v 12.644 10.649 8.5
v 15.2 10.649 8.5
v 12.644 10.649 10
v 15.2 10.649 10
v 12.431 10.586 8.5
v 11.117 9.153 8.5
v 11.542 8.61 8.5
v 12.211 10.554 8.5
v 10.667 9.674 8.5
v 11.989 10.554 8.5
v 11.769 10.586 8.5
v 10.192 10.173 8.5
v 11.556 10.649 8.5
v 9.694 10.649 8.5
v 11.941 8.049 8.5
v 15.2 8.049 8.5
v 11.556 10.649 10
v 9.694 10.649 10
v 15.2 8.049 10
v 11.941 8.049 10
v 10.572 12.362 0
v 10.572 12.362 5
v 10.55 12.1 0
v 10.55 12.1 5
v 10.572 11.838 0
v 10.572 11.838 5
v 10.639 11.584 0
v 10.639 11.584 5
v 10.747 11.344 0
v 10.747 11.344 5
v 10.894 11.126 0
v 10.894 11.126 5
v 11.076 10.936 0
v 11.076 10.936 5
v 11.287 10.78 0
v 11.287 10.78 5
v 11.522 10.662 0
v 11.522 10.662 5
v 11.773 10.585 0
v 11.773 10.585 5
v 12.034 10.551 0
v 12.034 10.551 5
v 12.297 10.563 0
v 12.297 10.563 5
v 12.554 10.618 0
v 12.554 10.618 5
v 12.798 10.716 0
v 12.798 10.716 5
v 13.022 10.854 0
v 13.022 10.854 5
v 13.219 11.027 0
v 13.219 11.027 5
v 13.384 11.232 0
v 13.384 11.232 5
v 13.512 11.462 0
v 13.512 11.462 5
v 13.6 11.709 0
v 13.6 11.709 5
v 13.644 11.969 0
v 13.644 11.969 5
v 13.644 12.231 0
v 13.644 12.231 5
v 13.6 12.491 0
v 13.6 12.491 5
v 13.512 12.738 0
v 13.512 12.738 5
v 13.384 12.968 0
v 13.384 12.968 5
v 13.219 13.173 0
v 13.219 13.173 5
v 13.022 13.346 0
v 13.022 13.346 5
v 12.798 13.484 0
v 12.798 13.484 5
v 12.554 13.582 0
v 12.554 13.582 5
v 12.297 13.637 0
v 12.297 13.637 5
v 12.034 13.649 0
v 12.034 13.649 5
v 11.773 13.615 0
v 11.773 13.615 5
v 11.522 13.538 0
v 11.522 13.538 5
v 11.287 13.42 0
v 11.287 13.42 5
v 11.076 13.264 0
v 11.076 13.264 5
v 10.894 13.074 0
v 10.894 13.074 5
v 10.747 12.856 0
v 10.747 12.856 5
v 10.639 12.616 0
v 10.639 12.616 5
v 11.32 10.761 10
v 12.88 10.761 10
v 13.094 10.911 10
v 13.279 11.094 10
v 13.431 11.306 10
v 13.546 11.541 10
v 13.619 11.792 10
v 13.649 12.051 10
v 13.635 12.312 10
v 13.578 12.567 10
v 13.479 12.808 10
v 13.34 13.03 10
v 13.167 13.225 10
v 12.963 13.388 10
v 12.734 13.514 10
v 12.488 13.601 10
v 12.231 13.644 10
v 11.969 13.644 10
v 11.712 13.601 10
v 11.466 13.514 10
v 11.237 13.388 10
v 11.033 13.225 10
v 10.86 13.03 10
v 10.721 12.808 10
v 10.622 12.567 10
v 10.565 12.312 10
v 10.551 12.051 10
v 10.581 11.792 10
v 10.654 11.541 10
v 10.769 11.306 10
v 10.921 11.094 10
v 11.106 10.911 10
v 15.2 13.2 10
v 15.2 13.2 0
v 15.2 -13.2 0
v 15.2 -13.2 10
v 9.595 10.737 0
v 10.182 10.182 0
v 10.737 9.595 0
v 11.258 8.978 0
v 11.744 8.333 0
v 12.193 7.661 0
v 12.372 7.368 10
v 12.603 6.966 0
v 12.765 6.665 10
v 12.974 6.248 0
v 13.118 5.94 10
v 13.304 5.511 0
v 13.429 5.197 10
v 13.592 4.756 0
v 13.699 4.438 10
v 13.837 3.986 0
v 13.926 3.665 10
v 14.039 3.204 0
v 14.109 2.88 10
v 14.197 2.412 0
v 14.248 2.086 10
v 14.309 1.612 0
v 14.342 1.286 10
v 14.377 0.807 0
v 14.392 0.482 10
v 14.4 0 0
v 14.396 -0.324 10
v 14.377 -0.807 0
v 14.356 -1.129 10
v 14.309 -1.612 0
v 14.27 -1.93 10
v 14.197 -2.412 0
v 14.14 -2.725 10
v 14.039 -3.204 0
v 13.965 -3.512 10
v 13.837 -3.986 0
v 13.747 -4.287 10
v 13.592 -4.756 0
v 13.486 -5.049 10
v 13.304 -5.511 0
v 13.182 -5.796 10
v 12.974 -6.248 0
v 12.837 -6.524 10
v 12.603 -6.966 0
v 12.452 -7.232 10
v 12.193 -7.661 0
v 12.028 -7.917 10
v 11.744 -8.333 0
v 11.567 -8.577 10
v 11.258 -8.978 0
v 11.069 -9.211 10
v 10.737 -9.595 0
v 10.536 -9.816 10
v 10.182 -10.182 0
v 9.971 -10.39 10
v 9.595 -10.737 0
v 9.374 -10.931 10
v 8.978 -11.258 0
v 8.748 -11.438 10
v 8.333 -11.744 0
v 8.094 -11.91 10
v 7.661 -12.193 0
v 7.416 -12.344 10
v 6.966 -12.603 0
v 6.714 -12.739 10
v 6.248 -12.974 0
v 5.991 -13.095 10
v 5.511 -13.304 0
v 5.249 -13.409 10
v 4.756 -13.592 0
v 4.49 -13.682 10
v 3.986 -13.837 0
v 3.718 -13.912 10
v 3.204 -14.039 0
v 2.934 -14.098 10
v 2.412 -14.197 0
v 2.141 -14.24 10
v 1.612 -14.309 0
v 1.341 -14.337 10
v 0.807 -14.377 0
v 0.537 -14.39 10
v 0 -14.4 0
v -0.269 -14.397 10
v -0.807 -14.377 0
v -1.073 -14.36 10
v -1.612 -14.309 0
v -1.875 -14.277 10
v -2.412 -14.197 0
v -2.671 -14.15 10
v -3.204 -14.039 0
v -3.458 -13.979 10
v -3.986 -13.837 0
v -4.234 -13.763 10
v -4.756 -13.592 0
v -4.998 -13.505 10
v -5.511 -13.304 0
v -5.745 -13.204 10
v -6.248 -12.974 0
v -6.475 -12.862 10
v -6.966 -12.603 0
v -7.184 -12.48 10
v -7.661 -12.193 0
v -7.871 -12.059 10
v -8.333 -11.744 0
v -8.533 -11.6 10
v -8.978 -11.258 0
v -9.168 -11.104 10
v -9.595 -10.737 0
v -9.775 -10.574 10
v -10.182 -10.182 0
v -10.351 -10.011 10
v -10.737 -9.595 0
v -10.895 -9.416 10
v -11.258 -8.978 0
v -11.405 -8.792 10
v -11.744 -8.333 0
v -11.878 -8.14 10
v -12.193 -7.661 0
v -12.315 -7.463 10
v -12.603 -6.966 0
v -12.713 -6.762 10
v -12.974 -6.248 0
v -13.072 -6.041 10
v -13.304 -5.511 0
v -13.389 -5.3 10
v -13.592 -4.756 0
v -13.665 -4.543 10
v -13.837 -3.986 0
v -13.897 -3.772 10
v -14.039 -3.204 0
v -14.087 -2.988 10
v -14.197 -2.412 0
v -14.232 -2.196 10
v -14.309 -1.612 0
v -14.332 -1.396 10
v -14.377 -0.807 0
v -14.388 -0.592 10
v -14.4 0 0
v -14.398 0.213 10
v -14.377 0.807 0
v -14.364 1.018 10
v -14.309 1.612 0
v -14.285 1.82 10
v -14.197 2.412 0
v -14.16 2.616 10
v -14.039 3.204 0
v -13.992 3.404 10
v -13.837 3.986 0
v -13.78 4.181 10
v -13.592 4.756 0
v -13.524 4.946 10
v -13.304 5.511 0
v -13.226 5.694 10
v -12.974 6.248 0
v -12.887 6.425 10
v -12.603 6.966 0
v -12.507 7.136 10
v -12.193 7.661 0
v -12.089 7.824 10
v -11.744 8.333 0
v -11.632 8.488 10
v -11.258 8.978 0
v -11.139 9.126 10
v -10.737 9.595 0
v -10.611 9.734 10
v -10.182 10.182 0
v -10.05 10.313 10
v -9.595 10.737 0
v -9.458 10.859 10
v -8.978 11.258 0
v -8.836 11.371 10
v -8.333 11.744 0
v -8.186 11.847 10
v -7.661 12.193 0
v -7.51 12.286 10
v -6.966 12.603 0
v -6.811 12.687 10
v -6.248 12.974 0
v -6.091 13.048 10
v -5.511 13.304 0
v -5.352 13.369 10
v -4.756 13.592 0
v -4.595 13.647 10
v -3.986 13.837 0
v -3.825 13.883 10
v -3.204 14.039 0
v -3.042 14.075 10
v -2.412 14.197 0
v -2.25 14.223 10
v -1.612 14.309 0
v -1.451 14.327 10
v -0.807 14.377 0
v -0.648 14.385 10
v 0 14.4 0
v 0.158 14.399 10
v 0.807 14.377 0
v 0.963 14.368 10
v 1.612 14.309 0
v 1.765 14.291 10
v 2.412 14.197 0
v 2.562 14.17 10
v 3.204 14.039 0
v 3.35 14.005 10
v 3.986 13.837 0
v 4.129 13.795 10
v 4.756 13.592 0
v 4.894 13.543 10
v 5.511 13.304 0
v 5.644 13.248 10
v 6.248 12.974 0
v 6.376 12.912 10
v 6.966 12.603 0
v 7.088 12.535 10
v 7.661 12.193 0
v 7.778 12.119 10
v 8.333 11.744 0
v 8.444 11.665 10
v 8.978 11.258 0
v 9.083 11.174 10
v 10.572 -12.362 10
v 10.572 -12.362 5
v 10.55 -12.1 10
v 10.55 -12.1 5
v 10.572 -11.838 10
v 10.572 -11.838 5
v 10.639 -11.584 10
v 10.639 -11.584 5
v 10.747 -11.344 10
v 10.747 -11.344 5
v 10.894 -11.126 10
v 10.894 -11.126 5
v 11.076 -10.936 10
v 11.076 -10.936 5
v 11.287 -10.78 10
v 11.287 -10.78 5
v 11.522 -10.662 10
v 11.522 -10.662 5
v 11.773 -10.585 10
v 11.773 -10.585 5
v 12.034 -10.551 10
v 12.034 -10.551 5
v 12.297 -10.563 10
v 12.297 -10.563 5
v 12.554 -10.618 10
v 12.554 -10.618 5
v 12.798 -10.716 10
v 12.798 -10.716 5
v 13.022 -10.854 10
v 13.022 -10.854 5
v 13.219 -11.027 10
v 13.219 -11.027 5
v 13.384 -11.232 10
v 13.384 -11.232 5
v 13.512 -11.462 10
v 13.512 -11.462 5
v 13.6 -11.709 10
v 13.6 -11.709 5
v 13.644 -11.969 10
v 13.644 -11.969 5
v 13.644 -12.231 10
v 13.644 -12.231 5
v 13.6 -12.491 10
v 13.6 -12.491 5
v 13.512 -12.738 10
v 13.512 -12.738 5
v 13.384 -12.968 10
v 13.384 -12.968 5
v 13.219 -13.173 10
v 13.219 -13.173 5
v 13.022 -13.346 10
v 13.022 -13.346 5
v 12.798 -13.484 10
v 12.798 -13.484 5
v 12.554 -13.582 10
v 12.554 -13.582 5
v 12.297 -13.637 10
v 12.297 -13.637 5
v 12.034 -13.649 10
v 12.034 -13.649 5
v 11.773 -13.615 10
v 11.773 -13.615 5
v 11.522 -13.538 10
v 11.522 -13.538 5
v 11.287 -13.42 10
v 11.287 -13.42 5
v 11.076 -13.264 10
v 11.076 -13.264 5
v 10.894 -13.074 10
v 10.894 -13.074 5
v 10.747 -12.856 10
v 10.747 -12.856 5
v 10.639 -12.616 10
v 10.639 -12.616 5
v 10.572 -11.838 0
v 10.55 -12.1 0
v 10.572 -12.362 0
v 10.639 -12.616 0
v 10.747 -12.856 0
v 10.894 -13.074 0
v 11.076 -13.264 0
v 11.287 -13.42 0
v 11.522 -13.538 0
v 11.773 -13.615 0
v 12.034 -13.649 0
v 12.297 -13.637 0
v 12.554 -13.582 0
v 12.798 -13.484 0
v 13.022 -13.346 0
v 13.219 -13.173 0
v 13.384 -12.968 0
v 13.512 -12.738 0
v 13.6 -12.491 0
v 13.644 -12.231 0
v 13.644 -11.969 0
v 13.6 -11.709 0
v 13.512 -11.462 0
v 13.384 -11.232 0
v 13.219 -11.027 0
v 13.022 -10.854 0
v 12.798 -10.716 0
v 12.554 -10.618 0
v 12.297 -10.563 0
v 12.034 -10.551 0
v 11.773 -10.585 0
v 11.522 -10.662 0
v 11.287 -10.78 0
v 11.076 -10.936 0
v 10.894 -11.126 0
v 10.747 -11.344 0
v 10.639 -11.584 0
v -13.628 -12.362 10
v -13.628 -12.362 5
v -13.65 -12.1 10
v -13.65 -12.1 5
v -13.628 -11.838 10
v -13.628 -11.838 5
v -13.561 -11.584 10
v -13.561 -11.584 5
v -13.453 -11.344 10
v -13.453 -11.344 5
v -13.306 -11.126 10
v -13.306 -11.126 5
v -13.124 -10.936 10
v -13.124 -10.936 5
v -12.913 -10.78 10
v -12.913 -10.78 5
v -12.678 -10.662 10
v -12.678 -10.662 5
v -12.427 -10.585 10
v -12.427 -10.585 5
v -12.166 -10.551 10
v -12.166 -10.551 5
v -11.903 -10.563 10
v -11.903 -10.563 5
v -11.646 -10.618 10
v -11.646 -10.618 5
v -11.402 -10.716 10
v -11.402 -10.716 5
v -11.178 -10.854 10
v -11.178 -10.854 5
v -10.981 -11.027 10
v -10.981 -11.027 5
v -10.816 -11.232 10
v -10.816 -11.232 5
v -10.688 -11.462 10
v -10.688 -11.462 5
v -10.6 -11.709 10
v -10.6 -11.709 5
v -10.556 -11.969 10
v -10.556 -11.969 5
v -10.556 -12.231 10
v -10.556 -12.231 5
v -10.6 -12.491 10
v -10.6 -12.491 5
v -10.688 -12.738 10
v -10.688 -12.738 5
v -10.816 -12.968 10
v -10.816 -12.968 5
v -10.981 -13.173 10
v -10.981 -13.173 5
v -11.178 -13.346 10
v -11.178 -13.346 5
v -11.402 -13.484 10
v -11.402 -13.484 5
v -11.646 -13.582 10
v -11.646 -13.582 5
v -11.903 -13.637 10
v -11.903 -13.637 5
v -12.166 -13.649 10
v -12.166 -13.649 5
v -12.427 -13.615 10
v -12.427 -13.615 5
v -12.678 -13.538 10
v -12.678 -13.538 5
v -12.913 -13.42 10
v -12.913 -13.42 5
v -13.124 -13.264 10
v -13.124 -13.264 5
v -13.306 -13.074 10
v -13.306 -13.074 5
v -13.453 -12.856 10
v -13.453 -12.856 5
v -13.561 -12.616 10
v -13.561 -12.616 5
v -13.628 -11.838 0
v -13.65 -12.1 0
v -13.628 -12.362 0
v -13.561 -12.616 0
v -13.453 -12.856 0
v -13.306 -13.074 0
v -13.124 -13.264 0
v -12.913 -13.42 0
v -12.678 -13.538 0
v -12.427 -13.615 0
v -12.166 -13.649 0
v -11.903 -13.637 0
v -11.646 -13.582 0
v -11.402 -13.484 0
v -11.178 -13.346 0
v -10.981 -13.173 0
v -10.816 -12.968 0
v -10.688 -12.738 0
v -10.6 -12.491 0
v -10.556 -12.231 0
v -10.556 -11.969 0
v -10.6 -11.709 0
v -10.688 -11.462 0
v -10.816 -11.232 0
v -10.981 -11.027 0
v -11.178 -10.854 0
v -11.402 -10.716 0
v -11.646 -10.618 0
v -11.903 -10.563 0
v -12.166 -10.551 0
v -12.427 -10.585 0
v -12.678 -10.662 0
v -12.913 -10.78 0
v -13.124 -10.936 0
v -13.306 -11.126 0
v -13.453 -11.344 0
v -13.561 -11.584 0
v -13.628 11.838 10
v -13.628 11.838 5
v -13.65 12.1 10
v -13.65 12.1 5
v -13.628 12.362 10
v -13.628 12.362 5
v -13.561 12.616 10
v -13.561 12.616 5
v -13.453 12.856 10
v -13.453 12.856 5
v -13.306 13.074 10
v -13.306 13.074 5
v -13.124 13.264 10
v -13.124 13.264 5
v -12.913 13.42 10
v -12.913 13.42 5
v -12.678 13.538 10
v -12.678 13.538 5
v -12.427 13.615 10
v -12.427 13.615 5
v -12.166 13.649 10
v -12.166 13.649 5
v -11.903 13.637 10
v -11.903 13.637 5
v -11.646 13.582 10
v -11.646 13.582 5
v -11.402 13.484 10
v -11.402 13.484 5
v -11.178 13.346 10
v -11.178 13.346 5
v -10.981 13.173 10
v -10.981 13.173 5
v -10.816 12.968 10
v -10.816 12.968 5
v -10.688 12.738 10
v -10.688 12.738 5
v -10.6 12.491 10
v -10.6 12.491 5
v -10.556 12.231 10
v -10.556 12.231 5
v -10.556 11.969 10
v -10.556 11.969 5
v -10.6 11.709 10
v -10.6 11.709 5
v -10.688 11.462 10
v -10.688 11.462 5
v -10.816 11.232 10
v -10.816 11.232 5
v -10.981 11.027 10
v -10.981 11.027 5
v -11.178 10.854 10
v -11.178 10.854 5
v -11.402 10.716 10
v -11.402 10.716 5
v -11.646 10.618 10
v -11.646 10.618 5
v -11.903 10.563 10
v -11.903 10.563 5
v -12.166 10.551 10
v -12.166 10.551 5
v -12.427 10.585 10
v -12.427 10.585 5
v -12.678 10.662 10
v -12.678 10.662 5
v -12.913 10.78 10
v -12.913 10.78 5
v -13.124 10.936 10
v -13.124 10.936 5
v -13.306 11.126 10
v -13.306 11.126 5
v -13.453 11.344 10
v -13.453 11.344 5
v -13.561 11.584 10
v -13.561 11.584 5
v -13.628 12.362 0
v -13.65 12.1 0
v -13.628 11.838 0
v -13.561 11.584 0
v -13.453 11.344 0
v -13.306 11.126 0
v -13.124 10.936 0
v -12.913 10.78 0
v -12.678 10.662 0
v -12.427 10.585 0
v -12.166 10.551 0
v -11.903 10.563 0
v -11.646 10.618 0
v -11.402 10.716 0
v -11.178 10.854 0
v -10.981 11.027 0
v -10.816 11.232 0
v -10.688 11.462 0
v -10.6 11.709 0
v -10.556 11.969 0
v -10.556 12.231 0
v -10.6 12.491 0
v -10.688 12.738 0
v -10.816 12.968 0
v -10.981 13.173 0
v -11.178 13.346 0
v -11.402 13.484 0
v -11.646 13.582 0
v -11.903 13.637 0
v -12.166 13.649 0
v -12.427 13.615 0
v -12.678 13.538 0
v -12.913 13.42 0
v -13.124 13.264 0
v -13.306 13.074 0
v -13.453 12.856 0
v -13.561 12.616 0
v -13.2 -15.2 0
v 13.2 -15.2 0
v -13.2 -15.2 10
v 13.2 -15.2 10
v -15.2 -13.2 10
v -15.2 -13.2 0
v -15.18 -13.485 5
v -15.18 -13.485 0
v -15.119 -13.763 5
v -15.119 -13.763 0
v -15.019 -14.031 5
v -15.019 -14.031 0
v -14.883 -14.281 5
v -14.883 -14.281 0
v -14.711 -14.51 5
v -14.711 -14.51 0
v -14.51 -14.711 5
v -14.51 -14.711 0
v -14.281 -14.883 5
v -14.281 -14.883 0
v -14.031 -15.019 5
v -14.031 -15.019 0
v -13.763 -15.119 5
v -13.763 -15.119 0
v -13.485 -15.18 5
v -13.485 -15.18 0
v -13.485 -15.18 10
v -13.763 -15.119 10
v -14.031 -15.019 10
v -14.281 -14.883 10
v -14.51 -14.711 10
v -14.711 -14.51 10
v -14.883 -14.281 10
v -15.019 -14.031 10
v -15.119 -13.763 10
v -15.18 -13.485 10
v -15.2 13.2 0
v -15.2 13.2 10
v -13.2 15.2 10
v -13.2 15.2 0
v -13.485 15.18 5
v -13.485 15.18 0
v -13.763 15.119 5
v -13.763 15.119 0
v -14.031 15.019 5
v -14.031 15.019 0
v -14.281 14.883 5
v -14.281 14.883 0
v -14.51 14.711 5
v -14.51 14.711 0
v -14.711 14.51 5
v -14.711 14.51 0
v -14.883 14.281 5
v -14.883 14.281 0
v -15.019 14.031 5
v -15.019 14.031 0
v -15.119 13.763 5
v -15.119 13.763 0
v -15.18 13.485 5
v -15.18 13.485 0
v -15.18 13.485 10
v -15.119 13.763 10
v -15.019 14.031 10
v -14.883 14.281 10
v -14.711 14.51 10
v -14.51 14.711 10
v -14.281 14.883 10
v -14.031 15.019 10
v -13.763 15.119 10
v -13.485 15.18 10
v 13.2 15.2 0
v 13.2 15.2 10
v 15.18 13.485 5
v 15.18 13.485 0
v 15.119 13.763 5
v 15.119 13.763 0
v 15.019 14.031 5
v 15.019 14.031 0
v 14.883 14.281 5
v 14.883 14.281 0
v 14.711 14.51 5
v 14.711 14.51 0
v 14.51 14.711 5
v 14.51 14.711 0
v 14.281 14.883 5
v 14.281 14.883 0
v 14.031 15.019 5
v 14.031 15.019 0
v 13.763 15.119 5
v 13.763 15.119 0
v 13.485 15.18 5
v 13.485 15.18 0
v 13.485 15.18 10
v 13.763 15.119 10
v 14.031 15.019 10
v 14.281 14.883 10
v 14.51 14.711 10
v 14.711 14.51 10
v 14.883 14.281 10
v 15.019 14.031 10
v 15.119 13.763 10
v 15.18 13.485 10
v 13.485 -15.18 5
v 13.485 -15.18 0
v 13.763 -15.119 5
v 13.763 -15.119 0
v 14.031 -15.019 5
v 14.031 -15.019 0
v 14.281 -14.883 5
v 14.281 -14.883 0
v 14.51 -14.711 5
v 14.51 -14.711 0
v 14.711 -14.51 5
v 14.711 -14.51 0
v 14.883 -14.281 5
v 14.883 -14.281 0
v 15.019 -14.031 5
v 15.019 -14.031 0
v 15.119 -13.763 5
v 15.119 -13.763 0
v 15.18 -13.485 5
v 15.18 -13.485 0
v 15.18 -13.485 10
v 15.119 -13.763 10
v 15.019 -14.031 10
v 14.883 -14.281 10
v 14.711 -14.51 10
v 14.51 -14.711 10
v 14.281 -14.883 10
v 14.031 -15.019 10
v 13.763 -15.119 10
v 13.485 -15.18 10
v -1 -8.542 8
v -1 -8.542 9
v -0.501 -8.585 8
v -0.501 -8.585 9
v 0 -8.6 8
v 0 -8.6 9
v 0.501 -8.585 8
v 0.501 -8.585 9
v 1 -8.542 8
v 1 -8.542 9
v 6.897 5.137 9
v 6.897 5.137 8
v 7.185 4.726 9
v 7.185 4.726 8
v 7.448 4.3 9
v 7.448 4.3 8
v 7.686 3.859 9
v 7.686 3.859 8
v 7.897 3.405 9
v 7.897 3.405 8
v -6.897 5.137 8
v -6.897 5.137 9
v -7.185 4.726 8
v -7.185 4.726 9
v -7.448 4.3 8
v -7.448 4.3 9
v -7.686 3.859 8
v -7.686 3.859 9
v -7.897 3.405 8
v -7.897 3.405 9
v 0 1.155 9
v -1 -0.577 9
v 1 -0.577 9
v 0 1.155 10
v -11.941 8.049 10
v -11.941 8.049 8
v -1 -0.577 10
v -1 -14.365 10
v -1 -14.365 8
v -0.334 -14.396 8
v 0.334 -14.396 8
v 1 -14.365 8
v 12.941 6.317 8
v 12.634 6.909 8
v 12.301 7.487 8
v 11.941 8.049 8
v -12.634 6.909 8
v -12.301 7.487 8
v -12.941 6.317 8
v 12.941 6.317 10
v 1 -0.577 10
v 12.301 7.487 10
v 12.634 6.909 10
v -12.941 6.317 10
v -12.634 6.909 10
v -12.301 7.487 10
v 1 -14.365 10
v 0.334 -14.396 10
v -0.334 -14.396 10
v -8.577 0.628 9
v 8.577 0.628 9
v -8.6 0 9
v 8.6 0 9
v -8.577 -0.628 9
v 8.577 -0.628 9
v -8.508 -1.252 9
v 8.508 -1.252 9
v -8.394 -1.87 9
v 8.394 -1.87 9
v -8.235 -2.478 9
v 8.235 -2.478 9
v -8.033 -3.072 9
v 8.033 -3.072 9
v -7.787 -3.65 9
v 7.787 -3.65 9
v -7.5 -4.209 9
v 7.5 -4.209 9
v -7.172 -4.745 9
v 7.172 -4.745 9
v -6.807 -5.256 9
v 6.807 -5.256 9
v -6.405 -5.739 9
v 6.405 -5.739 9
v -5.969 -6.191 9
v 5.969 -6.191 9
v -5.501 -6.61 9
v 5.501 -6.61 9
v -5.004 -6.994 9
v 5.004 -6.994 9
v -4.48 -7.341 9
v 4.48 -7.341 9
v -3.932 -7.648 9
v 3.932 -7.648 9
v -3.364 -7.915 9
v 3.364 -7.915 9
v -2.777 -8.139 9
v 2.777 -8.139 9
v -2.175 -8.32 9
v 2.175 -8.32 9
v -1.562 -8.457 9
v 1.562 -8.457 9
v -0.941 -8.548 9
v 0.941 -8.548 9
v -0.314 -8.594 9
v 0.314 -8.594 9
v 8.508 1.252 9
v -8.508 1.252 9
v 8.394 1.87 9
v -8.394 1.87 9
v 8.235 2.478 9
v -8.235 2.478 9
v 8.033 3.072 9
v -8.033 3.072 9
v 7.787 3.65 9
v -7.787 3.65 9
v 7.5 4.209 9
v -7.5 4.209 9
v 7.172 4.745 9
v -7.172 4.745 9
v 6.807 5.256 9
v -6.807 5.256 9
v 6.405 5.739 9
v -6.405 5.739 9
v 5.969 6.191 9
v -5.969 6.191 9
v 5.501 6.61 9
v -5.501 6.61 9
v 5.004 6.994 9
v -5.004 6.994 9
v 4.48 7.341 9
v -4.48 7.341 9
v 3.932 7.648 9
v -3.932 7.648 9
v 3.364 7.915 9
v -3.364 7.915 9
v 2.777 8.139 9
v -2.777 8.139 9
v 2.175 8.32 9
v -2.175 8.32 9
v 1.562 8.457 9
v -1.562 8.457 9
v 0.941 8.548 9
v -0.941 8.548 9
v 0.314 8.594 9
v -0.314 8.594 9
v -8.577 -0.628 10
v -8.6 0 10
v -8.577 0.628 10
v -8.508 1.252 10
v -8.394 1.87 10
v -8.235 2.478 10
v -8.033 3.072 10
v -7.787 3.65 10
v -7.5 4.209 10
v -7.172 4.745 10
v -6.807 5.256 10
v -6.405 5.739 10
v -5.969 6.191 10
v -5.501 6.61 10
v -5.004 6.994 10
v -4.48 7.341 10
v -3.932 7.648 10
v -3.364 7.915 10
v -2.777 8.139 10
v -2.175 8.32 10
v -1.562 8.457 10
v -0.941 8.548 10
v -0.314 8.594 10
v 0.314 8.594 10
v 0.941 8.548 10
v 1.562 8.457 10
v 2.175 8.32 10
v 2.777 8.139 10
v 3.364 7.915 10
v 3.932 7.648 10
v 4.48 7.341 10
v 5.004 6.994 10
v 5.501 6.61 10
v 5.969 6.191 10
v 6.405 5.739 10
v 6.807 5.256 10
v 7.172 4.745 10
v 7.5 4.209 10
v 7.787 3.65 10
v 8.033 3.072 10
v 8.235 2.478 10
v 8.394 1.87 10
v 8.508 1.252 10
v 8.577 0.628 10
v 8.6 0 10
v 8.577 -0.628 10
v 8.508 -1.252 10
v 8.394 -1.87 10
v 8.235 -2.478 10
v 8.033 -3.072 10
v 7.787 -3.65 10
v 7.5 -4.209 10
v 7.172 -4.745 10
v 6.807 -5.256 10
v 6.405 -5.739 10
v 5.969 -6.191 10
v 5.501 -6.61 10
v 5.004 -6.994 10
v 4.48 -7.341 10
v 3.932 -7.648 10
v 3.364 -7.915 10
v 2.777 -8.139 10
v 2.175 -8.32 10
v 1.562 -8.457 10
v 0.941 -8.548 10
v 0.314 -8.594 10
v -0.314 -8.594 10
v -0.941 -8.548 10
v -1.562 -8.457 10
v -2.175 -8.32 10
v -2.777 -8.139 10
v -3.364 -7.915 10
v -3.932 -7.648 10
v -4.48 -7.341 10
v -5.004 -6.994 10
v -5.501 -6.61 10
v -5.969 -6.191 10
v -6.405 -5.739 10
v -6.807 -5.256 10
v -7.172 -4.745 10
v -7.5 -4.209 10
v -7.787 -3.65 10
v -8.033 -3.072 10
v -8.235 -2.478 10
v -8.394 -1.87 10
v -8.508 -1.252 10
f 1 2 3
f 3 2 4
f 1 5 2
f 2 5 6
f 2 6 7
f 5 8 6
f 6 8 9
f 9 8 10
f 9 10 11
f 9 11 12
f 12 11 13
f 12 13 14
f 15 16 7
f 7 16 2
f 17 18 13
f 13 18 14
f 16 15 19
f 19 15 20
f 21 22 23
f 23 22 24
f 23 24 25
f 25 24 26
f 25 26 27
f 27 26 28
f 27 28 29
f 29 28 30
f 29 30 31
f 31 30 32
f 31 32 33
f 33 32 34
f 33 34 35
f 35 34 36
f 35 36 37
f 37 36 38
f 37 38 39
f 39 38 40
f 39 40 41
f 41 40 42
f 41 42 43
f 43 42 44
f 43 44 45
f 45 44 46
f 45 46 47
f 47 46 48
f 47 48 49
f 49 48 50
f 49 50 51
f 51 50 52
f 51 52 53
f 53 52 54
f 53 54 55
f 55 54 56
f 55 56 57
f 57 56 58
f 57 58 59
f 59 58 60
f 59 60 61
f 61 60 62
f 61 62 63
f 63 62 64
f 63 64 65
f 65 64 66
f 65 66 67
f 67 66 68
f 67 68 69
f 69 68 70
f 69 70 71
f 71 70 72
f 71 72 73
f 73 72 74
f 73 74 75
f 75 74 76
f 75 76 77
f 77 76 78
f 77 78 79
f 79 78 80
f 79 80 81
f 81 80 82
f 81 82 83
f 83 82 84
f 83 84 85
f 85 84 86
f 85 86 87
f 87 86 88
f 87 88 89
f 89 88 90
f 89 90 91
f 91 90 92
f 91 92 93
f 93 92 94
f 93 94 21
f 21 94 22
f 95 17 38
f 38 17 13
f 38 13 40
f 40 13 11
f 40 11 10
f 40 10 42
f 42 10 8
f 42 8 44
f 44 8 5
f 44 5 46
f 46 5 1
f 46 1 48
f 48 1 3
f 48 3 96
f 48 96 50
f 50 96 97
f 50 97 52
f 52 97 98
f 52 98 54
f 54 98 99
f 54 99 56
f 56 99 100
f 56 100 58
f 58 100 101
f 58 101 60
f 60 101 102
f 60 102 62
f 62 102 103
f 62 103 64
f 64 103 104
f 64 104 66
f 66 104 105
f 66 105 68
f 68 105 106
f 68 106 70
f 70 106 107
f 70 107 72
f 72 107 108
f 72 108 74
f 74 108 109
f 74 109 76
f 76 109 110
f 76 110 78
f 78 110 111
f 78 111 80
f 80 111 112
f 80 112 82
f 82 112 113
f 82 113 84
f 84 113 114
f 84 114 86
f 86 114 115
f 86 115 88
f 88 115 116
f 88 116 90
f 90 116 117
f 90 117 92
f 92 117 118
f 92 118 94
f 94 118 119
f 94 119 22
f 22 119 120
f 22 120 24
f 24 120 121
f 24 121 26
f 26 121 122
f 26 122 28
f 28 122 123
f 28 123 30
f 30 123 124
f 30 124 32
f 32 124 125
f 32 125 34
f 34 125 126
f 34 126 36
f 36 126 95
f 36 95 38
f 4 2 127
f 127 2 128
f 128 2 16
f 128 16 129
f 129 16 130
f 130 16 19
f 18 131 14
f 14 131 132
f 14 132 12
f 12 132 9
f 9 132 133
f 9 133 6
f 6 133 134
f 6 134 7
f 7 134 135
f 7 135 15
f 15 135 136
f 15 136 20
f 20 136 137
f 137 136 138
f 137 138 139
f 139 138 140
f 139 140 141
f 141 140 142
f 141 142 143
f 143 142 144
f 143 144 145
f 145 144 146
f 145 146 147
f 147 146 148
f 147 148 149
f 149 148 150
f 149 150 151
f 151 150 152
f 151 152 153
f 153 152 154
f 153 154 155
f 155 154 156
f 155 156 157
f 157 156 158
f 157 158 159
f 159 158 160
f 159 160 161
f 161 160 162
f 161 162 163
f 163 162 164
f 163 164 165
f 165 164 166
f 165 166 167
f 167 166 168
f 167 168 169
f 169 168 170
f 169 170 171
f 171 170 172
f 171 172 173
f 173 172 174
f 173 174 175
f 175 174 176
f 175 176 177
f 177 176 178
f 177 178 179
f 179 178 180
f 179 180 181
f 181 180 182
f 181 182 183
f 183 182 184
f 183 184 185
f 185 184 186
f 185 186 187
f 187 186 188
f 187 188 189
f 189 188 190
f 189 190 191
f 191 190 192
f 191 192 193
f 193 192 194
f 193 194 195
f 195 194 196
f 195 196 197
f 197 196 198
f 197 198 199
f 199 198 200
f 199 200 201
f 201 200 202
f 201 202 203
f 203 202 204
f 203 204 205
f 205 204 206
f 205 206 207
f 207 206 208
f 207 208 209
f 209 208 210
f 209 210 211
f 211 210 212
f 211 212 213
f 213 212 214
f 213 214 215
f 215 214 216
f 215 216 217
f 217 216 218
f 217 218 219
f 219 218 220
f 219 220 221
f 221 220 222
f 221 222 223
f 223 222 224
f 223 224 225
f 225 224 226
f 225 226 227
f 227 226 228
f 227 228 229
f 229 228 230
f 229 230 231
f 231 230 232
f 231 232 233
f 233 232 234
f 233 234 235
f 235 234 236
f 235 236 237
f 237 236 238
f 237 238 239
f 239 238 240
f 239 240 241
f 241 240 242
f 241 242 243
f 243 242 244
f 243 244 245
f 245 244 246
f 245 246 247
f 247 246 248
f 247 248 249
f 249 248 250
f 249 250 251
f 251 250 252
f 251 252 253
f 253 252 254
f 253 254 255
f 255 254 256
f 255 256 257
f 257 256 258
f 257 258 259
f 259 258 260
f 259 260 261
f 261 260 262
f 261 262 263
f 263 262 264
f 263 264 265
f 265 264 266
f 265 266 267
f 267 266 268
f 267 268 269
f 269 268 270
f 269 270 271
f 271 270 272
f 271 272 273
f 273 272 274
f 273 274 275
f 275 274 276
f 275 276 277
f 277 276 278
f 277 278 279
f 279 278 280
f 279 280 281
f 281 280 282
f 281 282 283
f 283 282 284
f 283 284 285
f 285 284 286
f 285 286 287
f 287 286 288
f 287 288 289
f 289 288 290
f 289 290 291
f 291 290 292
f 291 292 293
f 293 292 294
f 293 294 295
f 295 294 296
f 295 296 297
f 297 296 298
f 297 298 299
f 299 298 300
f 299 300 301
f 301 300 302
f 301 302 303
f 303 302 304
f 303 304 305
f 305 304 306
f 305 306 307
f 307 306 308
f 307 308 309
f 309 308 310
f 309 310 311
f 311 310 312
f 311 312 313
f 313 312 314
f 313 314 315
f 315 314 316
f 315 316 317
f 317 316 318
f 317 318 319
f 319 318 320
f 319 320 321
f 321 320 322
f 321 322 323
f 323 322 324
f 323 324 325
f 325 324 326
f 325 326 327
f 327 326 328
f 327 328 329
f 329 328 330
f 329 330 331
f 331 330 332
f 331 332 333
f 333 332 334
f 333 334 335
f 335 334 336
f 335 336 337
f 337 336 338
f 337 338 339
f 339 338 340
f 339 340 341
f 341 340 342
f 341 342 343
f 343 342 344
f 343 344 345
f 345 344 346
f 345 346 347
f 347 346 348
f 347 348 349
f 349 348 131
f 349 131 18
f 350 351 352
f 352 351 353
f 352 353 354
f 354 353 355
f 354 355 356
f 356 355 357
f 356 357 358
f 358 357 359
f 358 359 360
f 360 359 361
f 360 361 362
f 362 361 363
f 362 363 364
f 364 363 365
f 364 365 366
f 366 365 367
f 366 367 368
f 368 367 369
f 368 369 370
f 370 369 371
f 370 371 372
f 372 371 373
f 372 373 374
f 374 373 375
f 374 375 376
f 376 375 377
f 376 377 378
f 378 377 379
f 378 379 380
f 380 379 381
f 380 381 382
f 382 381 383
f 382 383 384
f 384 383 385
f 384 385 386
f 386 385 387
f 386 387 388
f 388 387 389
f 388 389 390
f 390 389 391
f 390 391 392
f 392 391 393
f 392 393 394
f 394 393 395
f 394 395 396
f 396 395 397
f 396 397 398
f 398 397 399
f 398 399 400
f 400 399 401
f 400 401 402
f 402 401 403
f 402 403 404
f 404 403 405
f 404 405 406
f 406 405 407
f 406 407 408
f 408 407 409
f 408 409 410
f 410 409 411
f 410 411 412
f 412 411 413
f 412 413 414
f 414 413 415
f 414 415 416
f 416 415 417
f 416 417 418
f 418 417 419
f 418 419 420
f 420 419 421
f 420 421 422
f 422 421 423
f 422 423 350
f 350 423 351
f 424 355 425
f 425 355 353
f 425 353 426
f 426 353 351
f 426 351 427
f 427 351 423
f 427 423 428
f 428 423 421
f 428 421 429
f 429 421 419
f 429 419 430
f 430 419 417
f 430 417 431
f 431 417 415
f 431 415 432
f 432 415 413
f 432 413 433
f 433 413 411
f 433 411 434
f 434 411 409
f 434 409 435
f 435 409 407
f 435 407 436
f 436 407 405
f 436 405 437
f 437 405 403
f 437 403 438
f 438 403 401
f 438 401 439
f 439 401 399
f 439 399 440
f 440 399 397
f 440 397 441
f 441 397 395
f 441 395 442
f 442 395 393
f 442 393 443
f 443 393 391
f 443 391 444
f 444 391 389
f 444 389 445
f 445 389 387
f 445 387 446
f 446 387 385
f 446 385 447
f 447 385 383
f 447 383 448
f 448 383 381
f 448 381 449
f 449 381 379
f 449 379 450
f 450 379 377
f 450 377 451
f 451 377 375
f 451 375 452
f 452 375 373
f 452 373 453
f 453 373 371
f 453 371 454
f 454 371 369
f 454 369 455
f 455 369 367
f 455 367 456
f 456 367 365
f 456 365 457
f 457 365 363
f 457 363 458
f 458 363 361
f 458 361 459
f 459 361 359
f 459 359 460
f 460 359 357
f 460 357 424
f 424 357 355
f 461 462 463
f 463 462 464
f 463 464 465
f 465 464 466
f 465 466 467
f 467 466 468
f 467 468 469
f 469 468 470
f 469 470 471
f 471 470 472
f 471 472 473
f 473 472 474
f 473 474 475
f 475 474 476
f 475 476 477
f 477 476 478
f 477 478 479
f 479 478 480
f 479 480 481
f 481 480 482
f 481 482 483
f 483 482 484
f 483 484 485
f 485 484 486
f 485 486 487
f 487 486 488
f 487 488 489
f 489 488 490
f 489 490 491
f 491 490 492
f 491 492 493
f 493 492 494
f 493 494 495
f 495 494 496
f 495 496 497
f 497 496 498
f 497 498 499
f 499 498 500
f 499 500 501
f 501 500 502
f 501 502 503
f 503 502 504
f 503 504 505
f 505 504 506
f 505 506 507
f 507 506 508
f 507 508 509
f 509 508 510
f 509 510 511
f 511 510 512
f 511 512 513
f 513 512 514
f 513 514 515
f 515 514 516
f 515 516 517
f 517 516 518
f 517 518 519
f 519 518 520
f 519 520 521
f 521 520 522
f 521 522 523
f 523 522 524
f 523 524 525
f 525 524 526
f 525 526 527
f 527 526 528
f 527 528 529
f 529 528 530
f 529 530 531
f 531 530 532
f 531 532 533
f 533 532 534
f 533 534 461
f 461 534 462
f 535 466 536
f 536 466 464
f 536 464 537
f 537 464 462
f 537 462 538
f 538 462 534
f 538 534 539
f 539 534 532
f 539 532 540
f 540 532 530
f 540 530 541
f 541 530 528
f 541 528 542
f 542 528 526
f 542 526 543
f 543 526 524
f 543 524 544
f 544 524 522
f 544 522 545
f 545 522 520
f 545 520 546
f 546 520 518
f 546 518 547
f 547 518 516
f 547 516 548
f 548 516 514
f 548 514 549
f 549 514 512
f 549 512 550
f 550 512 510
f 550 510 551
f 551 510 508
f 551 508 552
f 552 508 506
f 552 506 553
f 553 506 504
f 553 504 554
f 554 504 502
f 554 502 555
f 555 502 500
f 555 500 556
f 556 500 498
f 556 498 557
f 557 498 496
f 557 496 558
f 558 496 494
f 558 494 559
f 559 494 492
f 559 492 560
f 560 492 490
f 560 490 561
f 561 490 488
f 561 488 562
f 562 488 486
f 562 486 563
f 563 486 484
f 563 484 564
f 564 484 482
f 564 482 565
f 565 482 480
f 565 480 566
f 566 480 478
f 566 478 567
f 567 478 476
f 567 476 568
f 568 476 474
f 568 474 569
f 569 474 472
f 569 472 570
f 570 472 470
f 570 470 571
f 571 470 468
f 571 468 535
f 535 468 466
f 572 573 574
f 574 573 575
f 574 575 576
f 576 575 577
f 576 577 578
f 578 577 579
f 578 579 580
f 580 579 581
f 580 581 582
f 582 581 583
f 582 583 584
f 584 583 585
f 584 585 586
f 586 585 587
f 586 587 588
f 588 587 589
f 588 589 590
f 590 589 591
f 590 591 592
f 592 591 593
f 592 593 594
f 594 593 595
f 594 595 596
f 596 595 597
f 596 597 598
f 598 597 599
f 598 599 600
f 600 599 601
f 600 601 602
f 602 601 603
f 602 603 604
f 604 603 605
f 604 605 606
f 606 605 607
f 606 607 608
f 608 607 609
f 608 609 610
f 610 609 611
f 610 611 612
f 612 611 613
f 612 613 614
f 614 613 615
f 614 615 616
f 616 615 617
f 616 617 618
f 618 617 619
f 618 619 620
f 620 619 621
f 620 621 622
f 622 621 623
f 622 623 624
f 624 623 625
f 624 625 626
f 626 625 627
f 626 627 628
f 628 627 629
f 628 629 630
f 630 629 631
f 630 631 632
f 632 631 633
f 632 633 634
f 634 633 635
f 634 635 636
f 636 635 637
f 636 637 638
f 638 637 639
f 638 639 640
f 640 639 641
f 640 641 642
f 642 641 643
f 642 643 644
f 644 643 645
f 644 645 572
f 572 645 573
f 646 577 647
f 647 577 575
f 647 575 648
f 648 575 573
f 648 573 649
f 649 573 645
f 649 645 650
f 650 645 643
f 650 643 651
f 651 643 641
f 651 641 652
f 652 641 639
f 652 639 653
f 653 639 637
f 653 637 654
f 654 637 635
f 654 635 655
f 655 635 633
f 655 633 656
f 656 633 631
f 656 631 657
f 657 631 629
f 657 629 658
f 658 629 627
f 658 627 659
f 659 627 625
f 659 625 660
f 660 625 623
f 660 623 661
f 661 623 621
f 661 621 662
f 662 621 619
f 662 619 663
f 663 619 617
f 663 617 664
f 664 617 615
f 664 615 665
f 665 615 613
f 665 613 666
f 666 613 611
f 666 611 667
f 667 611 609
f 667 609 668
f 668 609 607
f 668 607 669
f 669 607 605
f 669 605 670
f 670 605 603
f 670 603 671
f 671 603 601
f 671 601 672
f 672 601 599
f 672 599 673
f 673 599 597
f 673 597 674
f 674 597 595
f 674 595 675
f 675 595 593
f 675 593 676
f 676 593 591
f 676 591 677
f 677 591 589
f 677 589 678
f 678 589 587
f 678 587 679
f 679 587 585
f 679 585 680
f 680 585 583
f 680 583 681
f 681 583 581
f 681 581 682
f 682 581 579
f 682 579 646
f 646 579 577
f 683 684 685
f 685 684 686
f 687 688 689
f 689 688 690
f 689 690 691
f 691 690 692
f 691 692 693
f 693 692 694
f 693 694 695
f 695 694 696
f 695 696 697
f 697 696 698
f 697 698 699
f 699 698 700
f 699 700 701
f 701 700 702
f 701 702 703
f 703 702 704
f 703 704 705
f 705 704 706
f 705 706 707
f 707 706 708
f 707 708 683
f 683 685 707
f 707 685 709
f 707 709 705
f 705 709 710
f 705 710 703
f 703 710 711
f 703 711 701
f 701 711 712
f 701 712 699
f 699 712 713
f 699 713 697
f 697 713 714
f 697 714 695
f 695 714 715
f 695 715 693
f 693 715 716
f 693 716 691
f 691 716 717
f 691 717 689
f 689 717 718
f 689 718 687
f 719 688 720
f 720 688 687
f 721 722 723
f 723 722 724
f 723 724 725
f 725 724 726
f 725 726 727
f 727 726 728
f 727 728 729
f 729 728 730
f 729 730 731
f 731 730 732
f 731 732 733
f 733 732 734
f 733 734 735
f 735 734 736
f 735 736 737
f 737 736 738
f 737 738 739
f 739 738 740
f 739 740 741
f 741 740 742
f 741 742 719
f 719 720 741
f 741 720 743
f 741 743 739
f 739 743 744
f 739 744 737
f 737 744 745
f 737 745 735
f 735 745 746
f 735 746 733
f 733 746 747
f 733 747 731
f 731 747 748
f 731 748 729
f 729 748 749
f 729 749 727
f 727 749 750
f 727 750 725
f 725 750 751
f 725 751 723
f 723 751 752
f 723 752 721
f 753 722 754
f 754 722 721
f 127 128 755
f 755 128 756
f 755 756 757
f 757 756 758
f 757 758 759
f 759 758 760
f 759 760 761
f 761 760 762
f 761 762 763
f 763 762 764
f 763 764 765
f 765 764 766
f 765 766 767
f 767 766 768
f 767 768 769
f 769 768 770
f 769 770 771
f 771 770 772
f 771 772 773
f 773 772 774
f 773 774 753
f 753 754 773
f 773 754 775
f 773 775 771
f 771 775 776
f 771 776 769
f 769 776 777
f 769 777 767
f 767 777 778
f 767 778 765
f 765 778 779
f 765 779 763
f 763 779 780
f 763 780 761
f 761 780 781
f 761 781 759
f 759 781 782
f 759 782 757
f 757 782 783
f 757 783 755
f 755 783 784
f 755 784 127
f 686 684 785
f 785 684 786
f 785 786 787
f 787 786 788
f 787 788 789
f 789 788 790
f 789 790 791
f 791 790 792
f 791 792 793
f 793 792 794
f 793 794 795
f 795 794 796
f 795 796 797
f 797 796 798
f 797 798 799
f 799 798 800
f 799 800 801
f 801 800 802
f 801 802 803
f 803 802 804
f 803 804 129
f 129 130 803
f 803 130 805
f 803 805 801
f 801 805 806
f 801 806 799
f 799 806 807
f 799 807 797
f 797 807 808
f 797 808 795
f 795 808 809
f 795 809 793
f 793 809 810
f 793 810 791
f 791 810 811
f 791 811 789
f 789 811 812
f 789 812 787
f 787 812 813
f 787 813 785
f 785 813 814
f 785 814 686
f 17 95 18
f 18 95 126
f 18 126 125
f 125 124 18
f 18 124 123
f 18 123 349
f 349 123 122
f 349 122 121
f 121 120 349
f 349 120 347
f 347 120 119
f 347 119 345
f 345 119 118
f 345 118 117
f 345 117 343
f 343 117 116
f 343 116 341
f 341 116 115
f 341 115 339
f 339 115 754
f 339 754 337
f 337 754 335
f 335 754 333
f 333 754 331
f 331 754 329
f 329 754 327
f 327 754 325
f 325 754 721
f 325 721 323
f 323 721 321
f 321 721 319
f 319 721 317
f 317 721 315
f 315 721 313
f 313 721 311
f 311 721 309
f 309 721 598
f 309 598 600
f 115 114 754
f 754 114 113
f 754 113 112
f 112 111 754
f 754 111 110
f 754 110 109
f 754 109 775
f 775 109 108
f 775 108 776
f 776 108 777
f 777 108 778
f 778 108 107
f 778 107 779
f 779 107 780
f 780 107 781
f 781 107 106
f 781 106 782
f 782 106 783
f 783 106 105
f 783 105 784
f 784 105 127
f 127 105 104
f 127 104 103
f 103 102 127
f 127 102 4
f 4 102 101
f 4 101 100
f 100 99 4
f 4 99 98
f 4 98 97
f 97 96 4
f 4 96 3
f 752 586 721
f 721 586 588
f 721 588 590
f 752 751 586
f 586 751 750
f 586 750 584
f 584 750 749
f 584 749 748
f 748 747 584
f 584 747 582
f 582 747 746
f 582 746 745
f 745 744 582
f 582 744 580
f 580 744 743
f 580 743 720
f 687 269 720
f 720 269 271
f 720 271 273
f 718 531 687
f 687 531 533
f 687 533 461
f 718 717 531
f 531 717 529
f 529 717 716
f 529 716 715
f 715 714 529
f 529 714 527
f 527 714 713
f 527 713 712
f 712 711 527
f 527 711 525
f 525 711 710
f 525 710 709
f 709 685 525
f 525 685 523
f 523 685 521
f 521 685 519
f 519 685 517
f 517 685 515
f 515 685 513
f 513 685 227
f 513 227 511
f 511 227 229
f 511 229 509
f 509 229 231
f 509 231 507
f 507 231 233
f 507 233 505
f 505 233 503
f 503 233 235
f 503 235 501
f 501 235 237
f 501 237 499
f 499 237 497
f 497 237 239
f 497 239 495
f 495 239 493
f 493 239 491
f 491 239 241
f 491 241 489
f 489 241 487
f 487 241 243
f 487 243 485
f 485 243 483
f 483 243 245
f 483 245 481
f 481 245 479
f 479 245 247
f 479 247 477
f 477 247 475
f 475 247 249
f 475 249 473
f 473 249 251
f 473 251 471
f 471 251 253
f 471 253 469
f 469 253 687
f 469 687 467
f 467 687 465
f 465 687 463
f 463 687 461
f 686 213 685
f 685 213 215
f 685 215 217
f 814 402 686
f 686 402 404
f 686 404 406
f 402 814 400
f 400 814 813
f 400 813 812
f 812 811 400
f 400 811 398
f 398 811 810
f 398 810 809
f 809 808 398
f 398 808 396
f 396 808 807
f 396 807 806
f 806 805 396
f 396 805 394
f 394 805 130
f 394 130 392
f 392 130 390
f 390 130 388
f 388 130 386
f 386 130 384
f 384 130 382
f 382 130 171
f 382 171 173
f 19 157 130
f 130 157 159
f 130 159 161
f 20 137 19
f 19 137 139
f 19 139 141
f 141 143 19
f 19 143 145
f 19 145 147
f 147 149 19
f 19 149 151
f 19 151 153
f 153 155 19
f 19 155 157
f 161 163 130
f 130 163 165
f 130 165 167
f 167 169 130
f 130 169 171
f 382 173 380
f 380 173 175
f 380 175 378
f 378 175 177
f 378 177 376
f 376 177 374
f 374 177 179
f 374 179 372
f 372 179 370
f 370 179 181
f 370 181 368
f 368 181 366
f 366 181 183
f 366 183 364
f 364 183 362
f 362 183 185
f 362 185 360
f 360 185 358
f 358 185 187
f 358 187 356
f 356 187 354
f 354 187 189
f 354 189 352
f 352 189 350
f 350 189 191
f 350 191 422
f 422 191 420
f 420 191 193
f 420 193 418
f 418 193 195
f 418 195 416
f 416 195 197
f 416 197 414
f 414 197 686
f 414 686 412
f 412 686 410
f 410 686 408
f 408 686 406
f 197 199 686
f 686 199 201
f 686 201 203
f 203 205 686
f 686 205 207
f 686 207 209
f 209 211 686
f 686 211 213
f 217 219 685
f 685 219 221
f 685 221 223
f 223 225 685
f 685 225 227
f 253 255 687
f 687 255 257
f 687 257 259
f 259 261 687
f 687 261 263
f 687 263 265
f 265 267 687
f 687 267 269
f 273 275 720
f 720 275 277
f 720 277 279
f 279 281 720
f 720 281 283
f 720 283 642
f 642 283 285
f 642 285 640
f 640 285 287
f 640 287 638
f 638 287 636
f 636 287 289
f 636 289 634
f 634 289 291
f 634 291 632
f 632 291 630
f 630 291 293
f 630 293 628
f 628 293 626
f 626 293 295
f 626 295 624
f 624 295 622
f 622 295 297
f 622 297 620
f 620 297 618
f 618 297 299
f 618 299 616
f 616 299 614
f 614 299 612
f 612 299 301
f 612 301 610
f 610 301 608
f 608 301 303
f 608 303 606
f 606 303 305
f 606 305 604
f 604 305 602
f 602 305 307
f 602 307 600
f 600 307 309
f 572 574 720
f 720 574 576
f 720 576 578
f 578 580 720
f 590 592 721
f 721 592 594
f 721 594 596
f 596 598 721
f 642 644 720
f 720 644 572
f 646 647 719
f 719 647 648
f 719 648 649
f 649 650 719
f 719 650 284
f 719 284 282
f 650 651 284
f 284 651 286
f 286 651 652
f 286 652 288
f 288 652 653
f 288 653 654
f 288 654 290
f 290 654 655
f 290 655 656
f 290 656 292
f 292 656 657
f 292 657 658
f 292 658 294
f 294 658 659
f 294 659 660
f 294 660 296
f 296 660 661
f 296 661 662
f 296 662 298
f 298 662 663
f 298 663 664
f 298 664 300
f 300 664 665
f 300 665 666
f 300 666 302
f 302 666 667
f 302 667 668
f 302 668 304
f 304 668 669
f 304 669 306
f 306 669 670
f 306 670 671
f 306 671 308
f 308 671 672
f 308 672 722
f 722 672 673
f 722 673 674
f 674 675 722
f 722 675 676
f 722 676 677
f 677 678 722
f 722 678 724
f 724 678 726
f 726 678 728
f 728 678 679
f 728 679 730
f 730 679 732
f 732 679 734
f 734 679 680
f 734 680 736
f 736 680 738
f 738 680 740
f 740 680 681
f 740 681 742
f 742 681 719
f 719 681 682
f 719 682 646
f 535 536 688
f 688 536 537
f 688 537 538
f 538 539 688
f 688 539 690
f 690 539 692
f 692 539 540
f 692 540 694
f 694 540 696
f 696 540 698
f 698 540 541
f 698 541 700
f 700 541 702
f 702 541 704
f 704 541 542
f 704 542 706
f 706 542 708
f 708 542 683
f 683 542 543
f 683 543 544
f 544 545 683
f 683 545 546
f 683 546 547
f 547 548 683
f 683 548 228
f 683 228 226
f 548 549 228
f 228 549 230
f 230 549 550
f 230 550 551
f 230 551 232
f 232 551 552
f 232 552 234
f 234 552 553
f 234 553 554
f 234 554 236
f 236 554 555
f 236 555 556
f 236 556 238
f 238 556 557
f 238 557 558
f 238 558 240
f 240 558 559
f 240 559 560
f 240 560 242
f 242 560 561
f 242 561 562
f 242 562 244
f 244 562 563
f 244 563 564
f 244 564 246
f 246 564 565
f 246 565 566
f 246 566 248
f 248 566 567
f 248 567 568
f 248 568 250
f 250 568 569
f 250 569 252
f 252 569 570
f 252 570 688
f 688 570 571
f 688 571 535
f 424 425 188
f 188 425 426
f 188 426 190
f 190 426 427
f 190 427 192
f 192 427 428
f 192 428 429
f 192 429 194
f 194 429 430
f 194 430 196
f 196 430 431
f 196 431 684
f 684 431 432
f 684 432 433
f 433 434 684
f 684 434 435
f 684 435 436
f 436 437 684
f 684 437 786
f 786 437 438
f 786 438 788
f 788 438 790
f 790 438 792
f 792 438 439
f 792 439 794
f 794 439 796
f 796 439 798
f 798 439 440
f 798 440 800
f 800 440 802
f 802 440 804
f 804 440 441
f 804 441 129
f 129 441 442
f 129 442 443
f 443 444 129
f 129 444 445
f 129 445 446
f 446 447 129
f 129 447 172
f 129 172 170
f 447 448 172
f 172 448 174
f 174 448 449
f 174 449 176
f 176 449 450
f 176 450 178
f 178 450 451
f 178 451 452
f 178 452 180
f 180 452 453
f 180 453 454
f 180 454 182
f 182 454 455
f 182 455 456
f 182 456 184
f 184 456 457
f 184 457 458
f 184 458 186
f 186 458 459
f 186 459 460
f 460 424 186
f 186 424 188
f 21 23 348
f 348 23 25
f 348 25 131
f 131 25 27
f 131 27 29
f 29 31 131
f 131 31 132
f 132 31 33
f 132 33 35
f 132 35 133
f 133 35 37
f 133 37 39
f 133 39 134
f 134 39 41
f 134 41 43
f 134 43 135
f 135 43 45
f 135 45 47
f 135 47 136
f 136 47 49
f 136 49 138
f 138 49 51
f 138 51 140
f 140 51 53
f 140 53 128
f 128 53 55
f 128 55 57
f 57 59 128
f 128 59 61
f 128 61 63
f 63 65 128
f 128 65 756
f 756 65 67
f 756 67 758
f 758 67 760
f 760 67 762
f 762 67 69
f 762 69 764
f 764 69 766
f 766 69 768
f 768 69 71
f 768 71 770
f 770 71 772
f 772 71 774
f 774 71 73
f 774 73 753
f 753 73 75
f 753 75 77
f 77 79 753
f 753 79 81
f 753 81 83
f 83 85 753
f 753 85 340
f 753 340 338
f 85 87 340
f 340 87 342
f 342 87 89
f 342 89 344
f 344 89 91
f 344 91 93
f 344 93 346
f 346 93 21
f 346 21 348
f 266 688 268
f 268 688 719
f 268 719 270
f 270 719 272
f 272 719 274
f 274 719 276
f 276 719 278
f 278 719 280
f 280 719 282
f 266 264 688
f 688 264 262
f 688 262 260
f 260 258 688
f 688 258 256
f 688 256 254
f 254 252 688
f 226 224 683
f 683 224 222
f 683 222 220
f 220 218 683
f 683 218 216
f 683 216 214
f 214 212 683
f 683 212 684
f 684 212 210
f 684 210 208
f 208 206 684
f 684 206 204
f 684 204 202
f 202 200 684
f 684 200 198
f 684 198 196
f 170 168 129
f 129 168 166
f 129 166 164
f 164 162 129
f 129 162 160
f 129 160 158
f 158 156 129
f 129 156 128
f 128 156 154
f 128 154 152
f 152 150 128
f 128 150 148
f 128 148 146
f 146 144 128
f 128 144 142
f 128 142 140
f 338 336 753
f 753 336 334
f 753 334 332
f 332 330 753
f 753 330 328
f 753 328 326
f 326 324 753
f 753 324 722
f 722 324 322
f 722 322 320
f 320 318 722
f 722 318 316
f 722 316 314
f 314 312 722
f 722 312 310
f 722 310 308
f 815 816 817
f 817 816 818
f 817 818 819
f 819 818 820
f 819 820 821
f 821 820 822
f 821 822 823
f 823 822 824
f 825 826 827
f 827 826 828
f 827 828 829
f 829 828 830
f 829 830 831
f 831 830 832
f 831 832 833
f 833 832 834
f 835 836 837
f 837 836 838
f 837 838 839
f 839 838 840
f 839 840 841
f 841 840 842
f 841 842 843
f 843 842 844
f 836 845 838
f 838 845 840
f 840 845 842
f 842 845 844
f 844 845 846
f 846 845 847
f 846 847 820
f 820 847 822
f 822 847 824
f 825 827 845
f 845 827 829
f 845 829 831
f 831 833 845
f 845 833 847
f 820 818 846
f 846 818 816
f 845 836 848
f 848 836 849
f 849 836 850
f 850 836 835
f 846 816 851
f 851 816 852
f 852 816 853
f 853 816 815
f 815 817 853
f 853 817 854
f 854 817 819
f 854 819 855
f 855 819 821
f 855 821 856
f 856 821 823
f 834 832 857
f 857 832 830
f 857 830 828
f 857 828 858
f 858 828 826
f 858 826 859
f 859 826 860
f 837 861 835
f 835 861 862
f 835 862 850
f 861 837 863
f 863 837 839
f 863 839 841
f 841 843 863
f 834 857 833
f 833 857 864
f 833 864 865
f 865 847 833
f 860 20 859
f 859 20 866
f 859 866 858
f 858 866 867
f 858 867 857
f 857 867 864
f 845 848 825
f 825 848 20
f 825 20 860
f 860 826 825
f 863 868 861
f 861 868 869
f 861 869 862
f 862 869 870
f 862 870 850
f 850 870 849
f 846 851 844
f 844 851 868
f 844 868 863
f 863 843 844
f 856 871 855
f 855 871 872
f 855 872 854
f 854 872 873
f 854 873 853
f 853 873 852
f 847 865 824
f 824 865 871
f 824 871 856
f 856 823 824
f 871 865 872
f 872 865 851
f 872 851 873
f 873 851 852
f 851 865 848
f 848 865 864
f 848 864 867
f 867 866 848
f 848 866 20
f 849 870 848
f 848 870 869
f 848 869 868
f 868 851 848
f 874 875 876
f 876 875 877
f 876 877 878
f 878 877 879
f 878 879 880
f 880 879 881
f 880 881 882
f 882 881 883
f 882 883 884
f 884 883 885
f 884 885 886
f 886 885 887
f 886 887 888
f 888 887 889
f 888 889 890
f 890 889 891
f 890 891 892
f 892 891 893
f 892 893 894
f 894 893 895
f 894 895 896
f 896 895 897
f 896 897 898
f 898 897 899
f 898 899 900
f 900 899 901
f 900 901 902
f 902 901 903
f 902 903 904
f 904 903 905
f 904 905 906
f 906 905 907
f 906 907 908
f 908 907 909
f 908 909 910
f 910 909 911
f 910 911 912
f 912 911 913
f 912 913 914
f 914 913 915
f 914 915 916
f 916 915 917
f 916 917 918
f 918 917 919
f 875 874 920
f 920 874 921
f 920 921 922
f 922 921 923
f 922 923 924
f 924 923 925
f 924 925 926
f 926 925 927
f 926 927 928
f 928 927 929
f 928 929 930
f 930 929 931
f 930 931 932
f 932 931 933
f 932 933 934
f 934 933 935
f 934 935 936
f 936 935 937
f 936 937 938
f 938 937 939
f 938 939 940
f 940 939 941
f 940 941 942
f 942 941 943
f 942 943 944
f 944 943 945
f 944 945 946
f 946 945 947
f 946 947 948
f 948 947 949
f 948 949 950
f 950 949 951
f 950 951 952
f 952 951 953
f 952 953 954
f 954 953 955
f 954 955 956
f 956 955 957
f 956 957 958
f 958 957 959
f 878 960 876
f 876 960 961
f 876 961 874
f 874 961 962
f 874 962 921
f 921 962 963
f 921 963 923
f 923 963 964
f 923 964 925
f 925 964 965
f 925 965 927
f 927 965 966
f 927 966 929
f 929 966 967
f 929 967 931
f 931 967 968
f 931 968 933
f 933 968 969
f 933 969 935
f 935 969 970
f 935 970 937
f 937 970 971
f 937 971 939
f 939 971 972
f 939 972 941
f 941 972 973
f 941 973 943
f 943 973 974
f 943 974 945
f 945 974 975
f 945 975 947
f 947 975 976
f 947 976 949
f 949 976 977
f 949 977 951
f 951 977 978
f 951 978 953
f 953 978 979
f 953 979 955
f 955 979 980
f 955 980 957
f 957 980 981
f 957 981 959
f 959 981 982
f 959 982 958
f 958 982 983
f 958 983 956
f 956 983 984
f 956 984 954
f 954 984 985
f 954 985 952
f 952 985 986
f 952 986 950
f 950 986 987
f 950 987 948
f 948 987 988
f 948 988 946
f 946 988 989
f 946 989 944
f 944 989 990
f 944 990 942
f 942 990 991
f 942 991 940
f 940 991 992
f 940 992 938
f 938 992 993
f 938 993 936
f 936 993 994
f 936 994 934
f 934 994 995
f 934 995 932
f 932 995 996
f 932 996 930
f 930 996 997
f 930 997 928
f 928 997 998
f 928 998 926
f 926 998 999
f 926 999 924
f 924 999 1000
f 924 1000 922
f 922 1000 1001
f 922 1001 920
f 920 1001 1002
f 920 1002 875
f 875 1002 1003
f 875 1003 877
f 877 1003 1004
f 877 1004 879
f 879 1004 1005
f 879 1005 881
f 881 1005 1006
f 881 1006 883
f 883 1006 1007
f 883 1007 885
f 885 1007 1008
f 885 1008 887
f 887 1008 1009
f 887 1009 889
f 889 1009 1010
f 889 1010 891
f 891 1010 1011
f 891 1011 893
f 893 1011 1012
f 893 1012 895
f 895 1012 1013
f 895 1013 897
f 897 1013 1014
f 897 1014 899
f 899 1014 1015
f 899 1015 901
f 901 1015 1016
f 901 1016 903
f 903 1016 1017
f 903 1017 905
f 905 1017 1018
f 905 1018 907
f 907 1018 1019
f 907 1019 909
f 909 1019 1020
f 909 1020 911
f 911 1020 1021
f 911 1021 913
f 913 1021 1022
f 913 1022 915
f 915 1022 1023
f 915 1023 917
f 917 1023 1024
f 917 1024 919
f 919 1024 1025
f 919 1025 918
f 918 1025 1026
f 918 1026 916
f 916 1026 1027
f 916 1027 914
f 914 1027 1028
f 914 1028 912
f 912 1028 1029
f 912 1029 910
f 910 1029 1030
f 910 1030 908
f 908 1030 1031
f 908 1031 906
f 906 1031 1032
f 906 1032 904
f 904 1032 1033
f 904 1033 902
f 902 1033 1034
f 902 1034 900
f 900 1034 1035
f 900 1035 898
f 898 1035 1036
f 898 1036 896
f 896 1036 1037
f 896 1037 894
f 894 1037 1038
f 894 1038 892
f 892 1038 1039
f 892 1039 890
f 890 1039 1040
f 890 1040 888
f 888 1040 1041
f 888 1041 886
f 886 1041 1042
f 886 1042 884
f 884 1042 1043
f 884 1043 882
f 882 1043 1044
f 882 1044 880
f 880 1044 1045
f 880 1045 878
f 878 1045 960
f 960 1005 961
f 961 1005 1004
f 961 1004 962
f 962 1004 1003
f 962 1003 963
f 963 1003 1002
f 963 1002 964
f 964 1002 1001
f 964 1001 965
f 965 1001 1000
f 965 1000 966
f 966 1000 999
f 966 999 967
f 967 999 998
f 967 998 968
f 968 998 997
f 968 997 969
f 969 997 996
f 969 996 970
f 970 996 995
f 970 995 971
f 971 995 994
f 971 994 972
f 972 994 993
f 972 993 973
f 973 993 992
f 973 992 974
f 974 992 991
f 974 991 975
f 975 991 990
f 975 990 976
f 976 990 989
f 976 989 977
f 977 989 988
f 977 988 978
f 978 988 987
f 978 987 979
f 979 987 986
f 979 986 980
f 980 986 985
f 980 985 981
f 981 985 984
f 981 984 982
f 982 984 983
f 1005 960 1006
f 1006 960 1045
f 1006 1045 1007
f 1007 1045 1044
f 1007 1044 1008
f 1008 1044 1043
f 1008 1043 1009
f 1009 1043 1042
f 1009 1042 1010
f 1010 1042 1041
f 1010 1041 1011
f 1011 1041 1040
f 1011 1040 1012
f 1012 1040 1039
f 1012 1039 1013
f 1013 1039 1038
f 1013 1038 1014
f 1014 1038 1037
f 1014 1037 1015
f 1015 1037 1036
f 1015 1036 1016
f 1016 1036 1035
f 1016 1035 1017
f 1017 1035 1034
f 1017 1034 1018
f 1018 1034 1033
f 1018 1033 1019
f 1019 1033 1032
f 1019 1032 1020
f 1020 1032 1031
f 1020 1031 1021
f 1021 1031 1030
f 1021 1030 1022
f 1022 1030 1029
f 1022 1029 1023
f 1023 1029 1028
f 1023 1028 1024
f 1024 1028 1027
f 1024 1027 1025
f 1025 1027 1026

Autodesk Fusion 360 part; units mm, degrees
sketch "Frame" plane through (0, 0, 0) normal (0, 0, 1) x (1, 0, 0)
  line L0 (13.2, -15.2) -> (-13.2, -15.2)
  line L1 (-15.2, -13.2) -> (-15.2, 13.2)
  line L2 (-13.2, 15.2) -> (13.2, 15.2)
  line L3 (15.2, 13.2) -> (15.2, -13.2)
  circle A0 centre (0, 0) radius 14.4
  arc A1 (13.2, -15.2) -> (15.2, -13.2) centre (13.2, -13.2) ccw
  arc A2 (-15.2, -13.2) -> (-13.2, -15.2) centre (-13.2, -13.2) ccw
  arc A3 (-13.2, 15.2) -> (-15.2, 13.2) centre (-13.2, 13.2) ccw
  arc A4 (15.2, 13.2) -> (13.2, 15.2) centre (13.2, 13.2) ccw
  circle A5 centre (-12.1, 12.1) radius 1.55
  line L4 (0, -20) -> (0, 21.5907) construction
  line L5 (25, 0) -> (-35, 0) construction
  circle A6 centre (12.1, 12.1) radius 1.55
  circle A7 centre (-12.1, -12.1) radius 1.55
  circle A8 centre (12.1, -12.1) radius 1.55
  dimension "d1" = 30.4
  dimension "d2" = 30.4
  dimension "d3" = 15.2
  dimension "d4" = 15.2
  dimension "d5" = 28.8
  dimension "d6" = 2
  dimension "d7" = 3.1
  dimension "d8" = 3.1
  dimension "d9" = 3.1
extrude "Extrude1" add sketch "Frame" along normal blind 10 makes body 1
sketch "Fan Attacher" plane through (0, 0, 10) normal (0, 0, 1) x (-1, 0, 0)
  circle A0 centre (-12.1, -12.1) radius 1.55
  circle A1 centre (-12.1, 12.1) radius 1.55
  circle A2 centre (0, 0) radius 14.4
  circle A3 centre (12.1, 12.1) radius 1.55
  circle A4 centre (12.1, -12.1) radius 1.55
  arc A5 (-13.2, 15.2) -> (-15.2, 13.2) centre (-13.2, 13.2) ccw
  line L0 (-15.2, 13.2) -> (-15.2, -13.2)
  arc A6 (-15.2, -13.2) -> (-13.2, -15.2) centre (-13.2, -13.2) ccw
  line L1 (-13.2, -15.2) -> (13.2, -15.2)
  arc A7 (13.2, -15.2) -> (15.2, -13.2) centre (13.2, -13.2) ccw
  line L2 (15.2, -13.2) -> (15.2, 13.2)
  arc A8 (15.2, 13.2) -> (13.2, 15.2) centre (13.2, 13.2) ccw
  line L3 (13.2, 15.2) -> (-13.2, 15.2)
  line L4 (0, 14.4) -> (0, 0) construction
  line L5 (0, 0) -> (-12.4708, -7.2) construction
  line L6 (0, 0) -> (12.4708, -7.2) construction
  line L7 (-1, 14.4) -> (-1, 0.5774)
  line L8 (1, 14.4) -> (1, 0.5774)
  line L9 (-1, 0.5774) -> (-12.9708, -6.334)
  line L10 (0, -1.1547) -> (-11.9708, -8.066)
  line L11 (0, -1.1547) -> (11.9708, -8.066)
  line L12 (1, 0.5774) -> (12.9708, -6.334)
  circle A9 centre (0, 0) radius 14.4
  dimension "d12" = 120
  dimension "d13" = 120
extrude "Extrude2" add sketch "Fan Attacher" against normal blind 2 separate body contours A2 L7 L8 L9 L10 L11 L12 A9 makes body 2
sketch "Sketch3" plane through (0, 0, 8) normal (0, 0, -1) x (1, 0, 0)
  line L0 (1, 0.5774) -> (1, 14.3652) construction
  arc A0 (1, 14.3652) -> (-1, 14.3652) centre (0, 0) ccw
  line L1 (-1, 14.3652) -> (-1, 0.5774) construction
  line L2 (-1, 0.5774) -> (-12.9407, -6.3166) construction
  arc A1 (-12.9407, -6.3166) -> (-11.9407, -8.0486) centre (0, 0) ccw
  line L3 (-11.9407, -8.0486) -> (0, -1.1547) construction
  line L4 (0, -1.1547) -> (11.9407, -8.0486) construction
  arc A2 (11.9407, -8.0486) -> (12.9407, -6.3166) centre (0, 0) ccw
  line L5 (12.9407, -6.3166) -> (1, 0.5774)
  circle A3 centre (0, 0) radius 8.6
  dimension "d22" = 17.2
extrude "Extrude3" add sketch "Sketch3" against normal up to surface (2 mm away) separate body makes body 3
sketch "Sketch4" plane through (0, 0, 8) normal (0, 0, -1) x (1, 0, 0)
  circle A0 centre (0, 0) radius 8.6
  circle A1 centre (0, 0) radius 8.6
  dimension "d26" = 17.2
extrude "Extrude4" cut sketch "Sketch4" against normal blind 1 bodies 2 3
sketch "Sketch5" plane through (0, 0, 10) normal (0, 0, 1) x (-1, 0, 0)
  line L0 (-1, 14.3652) -> (-1, 0.5774)
  line L1 (-1, 0.5774) -> (-12.9407, -6.3166)
  arc A0 (-12.9407, -6.3166) -> (-11.9407, -8.0486) centre (0, 0) ccw
  line L2 (-11.9407, -8.0486) -> (0, -1.1547)
  line L3 (0, -1.1547) -> (11.9407, -8.0486)
  arc A1 (11.9407, -8.0486) -> (12.9407, -6.3166) centre (0, 0) ccw
  line L4 (12.9407, -6.3166) -> (1, 0.5774)
  line L5 (1, 0.5774) -> (1, 14.3652)
  arc A2 (1, 14.3652) -> (-1, 14.3652) centre (0, 0) ccw
  circle A3 centre (0, 0) radius 14.4
  line L6 (-11.9407, -8.0486) -> (-16, -8.0486)
  line L7 (-9.6936, -10.6486) -> (-16, -10.6486)
  line L8 (-16, -8.0486) -> (-16, -10.6486)
  dimension "d29" = 2.6
  dimension "d30" = 16
extrude "Extrude5" cut sketch "Sketch5" against normal blind 1.5 contours A3 L6 L7 L8 bodies 1
equation "d3 = ( 30.4 / 2 ) * 1 mm"
